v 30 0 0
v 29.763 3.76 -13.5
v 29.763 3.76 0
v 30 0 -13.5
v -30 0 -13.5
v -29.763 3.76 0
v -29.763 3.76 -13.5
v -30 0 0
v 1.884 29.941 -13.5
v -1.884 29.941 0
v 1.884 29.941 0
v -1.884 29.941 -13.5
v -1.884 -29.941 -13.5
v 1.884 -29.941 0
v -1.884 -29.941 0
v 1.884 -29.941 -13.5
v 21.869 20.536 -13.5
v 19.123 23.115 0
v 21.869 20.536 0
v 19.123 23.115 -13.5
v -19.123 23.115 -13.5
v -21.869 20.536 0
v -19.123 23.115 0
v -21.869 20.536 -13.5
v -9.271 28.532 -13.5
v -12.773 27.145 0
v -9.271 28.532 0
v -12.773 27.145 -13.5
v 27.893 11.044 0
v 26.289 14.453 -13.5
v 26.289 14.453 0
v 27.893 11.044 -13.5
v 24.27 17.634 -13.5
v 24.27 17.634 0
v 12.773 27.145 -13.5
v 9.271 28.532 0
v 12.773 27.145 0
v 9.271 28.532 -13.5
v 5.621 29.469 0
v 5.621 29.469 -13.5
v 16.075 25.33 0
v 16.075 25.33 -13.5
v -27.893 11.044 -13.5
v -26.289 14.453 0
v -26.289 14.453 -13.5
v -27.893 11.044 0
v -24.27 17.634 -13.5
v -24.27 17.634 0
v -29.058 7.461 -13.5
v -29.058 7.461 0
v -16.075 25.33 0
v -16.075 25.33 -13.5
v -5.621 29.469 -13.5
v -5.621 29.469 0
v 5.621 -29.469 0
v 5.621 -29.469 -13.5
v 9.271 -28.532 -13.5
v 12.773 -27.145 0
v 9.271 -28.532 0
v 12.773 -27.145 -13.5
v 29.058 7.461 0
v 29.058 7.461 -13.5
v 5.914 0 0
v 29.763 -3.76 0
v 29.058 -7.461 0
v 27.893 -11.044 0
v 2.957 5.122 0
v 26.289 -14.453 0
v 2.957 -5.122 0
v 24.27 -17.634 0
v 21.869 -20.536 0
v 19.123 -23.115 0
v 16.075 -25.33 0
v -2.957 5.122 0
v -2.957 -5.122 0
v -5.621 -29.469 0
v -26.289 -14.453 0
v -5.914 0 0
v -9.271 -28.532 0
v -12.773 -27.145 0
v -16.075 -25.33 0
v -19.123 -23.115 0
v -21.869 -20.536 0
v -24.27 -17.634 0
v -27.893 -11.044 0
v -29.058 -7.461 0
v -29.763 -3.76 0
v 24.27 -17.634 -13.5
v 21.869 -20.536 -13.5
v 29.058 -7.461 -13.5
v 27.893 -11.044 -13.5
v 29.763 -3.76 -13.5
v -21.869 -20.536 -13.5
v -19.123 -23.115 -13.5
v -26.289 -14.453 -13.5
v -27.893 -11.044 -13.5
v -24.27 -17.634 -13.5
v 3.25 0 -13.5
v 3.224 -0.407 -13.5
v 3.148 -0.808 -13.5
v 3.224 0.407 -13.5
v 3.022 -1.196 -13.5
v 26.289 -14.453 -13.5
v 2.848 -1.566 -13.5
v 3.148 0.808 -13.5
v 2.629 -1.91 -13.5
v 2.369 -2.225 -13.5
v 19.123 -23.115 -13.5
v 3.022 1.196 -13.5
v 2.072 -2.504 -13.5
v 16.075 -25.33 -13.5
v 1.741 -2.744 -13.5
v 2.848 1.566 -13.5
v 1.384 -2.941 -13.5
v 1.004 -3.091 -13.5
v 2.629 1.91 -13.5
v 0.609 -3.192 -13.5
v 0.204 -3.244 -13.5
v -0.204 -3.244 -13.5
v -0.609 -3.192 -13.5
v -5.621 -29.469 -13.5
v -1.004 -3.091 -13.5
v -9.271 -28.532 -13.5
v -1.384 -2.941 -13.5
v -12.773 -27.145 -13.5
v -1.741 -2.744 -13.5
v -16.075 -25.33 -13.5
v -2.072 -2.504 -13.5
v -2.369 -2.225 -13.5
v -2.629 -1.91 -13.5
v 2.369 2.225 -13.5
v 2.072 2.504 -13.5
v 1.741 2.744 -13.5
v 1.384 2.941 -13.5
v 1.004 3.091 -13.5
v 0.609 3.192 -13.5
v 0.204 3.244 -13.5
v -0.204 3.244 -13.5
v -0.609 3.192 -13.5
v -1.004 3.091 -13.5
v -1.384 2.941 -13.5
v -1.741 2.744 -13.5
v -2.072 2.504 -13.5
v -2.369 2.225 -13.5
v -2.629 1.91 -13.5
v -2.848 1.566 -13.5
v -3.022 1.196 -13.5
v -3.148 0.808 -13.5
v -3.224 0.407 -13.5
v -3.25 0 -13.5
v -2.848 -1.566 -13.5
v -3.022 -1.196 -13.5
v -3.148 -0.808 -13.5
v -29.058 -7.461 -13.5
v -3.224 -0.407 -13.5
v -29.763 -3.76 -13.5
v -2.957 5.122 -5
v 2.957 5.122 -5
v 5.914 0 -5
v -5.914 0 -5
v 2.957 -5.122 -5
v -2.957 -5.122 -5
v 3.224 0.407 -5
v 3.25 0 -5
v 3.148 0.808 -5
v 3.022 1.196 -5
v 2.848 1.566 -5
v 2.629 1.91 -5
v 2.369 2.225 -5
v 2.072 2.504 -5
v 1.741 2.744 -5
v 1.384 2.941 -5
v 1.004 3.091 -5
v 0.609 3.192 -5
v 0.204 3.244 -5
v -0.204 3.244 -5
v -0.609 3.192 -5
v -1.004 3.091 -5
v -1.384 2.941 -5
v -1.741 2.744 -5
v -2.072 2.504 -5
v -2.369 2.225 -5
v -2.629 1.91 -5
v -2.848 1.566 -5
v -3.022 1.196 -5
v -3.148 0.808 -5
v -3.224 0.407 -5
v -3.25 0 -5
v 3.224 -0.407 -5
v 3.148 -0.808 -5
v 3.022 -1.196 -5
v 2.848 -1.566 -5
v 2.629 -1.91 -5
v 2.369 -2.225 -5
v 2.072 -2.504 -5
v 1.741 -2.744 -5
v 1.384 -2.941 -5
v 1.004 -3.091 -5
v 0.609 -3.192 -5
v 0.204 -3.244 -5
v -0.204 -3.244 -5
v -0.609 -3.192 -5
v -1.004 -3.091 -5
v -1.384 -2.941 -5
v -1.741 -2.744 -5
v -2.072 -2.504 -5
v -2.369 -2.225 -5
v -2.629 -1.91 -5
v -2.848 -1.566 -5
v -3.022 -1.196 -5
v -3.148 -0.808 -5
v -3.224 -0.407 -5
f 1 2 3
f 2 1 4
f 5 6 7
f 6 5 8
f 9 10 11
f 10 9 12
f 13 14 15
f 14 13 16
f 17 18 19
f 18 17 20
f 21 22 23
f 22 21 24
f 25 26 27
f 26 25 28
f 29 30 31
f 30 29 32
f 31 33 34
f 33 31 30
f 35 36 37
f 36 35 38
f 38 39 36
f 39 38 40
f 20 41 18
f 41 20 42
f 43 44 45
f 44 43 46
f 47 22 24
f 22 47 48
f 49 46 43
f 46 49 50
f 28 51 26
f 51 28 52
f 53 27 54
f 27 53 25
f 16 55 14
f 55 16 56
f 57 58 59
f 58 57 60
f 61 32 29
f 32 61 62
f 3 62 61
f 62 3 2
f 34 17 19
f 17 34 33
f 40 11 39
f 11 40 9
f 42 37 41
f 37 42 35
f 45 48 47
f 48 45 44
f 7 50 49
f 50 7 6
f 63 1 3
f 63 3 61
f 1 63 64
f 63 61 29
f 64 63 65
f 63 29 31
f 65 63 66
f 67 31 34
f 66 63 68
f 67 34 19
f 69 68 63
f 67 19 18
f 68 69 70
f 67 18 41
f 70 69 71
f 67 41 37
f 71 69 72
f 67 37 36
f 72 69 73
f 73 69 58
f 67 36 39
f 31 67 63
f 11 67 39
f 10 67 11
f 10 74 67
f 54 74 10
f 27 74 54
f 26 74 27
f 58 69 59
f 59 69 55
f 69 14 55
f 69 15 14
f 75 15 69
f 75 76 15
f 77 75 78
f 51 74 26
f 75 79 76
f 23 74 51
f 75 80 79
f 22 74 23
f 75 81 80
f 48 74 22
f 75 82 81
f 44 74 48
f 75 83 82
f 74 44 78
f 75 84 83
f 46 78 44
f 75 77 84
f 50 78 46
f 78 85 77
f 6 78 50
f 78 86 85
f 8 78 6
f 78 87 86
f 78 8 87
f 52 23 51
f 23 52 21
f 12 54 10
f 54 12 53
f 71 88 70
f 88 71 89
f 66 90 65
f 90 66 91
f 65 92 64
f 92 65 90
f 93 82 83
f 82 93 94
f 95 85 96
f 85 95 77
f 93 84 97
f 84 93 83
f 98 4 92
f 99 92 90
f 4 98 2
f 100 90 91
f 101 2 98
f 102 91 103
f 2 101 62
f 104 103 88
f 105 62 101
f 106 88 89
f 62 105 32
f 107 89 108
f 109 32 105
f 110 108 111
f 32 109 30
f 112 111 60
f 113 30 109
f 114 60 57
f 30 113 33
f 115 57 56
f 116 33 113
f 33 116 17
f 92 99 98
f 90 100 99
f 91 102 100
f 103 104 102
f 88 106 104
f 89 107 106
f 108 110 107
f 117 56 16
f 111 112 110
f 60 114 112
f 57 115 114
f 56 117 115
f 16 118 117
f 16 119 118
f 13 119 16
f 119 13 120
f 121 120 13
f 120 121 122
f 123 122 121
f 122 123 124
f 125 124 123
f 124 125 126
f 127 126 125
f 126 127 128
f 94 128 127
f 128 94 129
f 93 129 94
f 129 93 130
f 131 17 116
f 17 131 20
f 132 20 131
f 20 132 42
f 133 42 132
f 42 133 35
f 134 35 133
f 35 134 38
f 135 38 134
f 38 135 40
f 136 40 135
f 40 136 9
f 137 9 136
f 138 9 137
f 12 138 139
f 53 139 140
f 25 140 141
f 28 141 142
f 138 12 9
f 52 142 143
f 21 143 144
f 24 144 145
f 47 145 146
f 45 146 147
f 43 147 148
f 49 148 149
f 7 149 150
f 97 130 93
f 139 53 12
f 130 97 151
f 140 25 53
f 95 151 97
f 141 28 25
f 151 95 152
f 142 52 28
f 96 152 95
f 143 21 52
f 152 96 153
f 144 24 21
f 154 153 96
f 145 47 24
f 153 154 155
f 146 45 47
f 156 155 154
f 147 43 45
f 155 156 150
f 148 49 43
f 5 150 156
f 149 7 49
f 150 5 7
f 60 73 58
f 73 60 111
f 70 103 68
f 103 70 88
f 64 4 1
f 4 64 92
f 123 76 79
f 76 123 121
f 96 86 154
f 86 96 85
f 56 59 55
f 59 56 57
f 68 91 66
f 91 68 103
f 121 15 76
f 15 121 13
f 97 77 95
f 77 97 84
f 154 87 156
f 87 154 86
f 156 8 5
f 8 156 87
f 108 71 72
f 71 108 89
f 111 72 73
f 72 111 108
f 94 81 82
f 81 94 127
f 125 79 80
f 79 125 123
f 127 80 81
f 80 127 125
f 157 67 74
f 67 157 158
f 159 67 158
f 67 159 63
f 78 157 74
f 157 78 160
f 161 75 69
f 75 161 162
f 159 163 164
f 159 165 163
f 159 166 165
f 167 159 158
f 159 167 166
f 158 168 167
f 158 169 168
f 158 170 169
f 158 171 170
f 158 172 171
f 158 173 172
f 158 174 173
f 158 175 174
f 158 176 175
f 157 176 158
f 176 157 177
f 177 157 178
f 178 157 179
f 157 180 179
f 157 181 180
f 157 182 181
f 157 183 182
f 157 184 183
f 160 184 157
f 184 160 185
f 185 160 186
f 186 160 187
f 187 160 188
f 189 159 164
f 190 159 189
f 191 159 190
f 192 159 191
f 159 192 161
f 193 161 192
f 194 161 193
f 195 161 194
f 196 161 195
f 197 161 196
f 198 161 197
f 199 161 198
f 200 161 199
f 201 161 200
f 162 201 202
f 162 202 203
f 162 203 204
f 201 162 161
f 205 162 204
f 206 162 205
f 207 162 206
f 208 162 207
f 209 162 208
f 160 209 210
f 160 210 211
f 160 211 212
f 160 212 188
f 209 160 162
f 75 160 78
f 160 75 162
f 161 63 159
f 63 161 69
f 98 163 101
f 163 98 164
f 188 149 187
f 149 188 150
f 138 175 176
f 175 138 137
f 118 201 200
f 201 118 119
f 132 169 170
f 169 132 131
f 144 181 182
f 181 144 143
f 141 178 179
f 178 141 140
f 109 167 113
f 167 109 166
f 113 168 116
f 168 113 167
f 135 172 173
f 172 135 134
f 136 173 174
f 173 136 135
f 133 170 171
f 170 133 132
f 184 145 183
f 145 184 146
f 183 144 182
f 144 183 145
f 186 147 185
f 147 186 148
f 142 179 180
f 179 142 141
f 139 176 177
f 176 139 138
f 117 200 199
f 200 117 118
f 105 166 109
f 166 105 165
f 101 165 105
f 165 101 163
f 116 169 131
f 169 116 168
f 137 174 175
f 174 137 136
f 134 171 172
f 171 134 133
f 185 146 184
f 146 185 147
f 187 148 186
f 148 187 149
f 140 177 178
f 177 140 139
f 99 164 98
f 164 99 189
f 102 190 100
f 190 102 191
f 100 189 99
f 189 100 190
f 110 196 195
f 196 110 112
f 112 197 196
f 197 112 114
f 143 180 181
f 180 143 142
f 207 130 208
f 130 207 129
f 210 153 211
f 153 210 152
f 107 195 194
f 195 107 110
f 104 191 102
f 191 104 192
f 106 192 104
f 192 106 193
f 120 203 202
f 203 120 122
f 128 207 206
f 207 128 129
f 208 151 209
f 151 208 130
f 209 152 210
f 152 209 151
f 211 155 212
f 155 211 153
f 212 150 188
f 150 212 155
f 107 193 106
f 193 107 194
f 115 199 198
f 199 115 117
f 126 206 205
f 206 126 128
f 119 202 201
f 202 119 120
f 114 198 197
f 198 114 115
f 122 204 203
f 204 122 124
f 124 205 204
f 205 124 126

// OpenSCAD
$fn = 50;


difference() {
	union() {
		translate(v = [0, 0, -13.5000000000]) {
			cylinder(h = 13.5000000000, r = 30.0000000000);
		}
		#translate(v = [0, 0, -15.0000000000]) {
			cylinder(h = 15, r = 2.8750000000);
		}
	}
	union() {
		translate(v = [0, 0, 0]) {
			rotate(a = [0, 0, 0]) {
				difference() {
					union() {
						translate(v = [0, 0, -5]) {
							linear_extrude(height = 5) {
								polygon(points = [[5.9142500000, 0.0000000000], [2.9571250000, 5.1218907443], [-2.9571250000, 5.1218907443], [-5.9142500000, 0.0000000000], [-2.9571250000, -5.1218907443], [2.9571250000, -5.1218907443]]);
							}
						}
					}
					union();
				}
			}
		}
		#translate(v = [0, 0, -100.0000000000]) {
			cylinder(h = 200, r = 3.2500000000);
		}
	}
}
